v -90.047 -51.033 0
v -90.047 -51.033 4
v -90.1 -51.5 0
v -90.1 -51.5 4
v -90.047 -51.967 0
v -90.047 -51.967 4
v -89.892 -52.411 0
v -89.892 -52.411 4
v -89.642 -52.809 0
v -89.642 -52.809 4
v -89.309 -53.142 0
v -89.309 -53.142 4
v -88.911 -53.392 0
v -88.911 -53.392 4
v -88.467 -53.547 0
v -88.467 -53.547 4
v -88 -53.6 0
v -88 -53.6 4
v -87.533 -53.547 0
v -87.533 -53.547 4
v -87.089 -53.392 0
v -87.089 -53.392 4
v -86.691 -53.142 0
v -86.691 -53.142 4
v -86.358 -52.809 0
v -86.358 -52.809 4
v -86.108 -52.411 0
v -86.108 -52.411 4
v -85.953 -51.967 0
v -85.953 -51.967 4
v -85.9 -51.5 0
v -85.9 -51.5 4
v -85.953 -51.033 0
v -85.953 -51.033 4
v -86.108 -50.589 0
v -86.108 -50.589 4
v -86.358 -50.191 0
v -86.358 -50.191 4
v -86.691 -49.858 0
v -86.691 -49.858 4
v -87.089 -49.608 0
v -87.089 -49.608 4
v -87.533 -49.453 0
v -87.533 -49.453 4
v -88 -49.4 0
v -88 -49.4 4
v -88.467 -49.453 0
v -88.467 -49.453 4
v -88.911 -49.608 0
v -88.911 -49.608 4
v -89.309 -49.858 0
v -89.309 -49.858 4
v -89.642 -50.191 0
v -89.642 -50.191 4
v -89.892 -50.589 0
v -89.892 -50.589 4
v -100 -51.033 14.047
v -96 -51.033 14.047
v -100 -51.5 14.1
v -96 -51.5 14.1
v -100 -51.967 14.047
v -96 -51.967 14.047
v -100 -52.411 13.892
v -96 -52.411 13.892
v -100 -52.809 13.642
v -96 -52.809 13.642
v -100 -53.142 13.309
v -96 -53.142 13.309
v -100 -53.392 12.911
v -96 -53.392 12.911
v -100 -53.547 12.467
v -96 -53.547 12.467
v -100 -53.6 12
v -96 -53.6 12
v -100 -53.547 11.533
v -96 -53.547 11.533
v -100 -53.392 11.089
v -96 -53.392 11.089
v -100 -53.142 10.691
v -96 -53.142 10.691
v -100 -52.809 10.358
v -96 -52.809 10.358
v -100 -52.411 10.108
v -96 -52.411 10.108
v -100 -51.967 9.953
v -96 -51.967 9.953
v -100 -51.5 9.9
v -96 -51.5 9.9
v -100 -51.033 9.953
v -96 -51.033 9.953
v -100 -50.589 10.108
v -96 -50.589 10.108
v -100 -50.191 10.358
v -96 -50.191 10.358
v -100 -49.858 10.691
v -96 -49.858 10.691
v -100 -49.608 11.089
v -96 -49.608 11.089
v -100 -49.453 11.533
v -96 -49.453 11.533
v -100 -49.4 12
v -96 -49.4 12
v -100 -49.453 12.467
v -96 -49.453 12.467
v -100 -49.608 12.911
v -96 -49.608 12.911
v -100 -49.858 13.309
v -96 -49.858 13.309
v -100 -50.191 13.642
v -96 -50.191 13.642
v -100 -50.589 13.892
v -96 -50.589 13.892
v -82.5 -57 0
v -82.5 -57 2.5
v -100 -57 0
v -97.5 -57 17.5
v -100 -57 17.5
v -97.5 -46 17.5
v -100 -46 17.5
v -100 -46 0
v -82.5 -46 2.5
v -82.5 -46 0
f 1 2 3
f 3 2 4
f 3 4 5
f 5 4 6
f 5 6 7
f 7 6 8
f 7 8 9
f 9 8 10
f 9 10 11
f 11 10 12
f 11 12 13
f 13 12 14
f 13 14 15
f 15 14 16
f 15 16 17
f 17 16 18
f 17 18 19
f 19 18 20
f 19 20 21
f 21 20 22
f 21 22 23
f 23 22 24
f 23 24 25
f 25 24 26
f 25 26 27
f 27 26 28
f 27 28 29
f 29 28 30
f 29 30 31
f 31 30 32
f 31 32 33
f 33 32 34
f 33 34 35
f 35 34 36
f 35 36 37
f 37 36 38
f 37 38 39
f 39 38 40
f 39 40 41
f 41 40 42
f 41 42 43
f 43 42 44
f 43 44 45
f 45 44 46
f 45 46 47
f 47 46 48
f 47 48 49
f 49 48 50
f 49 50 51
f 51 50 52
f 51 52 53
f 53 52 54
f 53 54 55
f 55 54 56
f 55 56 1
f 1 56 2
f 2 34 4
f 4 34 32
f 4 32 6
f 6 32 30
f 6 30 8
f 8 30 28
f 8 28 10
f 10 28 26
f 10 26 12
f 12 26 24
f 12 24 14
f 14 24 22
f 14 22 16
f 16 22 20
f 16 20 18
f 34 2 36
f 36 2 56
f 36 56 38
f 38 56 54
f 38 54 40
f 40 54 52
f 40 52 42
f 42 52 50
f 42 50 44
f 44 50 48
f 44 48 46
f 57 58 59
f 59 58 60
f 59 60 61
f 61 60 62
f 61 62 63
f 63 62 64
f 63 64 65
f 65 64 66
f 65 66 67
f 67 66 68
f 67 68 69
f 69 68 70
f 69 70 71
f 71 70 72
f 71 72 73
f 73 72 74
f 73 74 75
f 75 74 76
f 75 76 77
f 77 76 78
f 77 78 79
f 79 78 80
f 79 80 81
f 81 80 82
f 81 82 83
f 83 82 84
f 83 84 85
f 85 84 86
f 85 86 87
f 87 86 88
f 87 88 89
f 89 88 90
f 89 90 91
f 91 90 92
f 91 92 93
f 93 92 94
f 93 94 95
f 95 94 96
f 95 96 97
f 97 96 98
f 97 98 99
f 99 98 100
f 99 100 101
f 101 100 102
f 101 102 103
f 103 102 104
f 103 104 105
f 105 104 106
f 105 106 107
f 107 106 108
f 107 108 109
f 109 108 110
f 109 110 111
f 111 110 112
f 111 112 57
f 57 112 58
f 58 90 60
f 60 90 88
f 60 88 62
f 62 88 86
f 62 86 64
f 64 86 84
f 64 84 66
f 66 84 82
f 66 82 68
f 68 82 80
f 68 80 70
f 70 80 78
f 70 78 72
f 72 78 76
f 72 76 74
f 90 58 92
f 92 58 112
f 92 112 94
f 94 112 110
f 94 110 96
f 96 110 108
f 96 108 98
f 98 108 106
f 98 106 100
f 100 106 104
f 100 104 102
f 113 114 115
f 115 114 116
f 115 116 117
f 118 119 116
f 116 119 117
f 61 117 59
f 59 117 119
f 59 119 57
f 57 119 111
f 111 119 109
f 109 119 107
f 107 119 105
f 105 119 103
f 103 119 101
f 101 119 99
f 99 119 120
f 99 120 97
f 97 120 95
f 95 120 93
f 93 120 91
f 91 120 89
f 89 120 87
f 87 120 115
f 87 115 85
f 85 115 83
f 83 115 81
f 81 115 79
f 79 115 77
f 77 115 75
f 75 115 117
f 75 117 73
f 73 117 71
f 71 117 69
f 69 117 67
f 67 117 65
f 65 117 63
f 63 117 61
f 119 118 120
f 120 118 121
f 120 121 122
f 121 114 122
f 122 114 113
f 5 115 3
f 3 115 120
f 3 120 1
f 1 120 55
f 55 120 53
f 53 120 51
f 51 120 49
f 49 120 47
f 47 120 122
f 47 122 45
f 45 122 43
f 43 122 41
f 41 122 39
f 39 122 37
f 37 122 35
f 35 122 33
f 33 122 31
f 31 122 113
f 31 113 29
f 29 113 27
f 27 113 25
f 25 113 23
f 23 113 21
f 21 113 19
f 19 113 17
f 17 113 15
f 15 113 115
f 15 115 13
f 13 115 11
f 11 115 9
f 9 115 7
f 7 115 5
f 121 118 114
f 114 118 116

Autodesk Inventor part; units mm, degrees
ref_plane "YZ Plane" through (0, 0, 0) normal (1, 0, 0) x (0, 1, 0)
ref_plane "XZ Plane" through (0, 0, 0) normal (0, 1, 0) x (-1, 0, 0)
ref_plane "XY Plane" through (0, 0, 0) normal (0, 0, 1) x (1, 0, 0)
sketch "Boceto1" plane through (0, 0, 0) normal (0, 0, 1) x (1, 0, 0)
  circle A0 centre (88, 48.5) radius 1.5 projected
  circle A1 centre (88, -51.5) radius 1.5 projected
  circle A2 centre (-50, 86.5) radius 1.5 projected
  circle A3 centre (50, 86.5) radius 1.5 projected
  circle A4 centre (-88, -51.5) radius 1.5 projected
  circle A5 centre (-88, 48.5) radius 1.5 projected
  circle A6 centre (50, -89.5) radius 1.5 projected
  circle A7 centre (-50, -89.5) radius 1.5 projected
  line L0 (-103, -104.5) -> (-103, 101.5) projected
  line L1 (103, -104.5) -> (-103, -104.5) projected
  line L2 (103, 101.5) -> (103, -104.5) projected
  line L3 (-100, -104.5) -> (-100, 89.3) projected
  line L4 (-88, -51.5) -> (-100, -51.5)
  line L5 (-88, -51.5) -> (-82.5, -51.5)
  line L6 (-82.5, -51.5) -> (-82.5, -57)
  line L7 (-82.5, -57) -> (-100, -57)
  line L8 (-100, -57) -> (-100, -46)
  line L9 (-100, -46) -> (-82.5, -46)
  line L10 (-82.5, -46) -> (-82.5, -57)
  circle A8 centre (-88, -51.5) radius 2.1
  line L11 (-103, 101.5) -> (103, 101.5) projected
  point P0 (0, 0)
  dimension "d0" = 5.5
  dimension "d1" = 5.5
  dimension "d2" = 11
  dimension "d14" = 4.2
extrude "Extrusión1" add sketch "Boceto1" along normal blind 17.5 contours L5 L4 A4 | L5 A8 L4 A4 | A4 L4 L5 | A4 L4 A8 L5 | A8 L4 L3 L9 L10 L5 | L5 L6 L7 L3 L4 A8
sketch "Boceto2" plane through (-100, -57, 0) normal (-1, 0, 0) x (0, 0, 1)
  line L0 (0, 0) -> (17.5, 0) projected
  line L1 (0, 11) -> (0, 0) projected
  point P0 (0, 57)
  point P1 (12, 5.5)
  dimension "d5" = 5.5
  dimension "d6" = 12
hole "Agujero1" at (-100, -51.5, 12) direction (1, 0, 0) diameter 4.2 depth 4
sketch "Boceto3" plane through (0, 0, 0) normal (0, 0, -1) x (-1, 0, 0)
  line L0 (100, -46) -> (100, -57) projected
  line L1 (82.5, -46) -> (100, -46) projected
  point P0 (0, 0)
  point P1 (88, -51.5)
  dimension "d15" = 12
  dimension "d16" = 5.5
hole "Agujero2" at (-88, -51.5, 0) direction (0, 0, 1) diameter 4.2 depth 4
chamfer "Chaflán1" distance 15 angle 45 1 edges at (-82.5, -51.5, 17.5)
properties part number "Union_Inferior"
